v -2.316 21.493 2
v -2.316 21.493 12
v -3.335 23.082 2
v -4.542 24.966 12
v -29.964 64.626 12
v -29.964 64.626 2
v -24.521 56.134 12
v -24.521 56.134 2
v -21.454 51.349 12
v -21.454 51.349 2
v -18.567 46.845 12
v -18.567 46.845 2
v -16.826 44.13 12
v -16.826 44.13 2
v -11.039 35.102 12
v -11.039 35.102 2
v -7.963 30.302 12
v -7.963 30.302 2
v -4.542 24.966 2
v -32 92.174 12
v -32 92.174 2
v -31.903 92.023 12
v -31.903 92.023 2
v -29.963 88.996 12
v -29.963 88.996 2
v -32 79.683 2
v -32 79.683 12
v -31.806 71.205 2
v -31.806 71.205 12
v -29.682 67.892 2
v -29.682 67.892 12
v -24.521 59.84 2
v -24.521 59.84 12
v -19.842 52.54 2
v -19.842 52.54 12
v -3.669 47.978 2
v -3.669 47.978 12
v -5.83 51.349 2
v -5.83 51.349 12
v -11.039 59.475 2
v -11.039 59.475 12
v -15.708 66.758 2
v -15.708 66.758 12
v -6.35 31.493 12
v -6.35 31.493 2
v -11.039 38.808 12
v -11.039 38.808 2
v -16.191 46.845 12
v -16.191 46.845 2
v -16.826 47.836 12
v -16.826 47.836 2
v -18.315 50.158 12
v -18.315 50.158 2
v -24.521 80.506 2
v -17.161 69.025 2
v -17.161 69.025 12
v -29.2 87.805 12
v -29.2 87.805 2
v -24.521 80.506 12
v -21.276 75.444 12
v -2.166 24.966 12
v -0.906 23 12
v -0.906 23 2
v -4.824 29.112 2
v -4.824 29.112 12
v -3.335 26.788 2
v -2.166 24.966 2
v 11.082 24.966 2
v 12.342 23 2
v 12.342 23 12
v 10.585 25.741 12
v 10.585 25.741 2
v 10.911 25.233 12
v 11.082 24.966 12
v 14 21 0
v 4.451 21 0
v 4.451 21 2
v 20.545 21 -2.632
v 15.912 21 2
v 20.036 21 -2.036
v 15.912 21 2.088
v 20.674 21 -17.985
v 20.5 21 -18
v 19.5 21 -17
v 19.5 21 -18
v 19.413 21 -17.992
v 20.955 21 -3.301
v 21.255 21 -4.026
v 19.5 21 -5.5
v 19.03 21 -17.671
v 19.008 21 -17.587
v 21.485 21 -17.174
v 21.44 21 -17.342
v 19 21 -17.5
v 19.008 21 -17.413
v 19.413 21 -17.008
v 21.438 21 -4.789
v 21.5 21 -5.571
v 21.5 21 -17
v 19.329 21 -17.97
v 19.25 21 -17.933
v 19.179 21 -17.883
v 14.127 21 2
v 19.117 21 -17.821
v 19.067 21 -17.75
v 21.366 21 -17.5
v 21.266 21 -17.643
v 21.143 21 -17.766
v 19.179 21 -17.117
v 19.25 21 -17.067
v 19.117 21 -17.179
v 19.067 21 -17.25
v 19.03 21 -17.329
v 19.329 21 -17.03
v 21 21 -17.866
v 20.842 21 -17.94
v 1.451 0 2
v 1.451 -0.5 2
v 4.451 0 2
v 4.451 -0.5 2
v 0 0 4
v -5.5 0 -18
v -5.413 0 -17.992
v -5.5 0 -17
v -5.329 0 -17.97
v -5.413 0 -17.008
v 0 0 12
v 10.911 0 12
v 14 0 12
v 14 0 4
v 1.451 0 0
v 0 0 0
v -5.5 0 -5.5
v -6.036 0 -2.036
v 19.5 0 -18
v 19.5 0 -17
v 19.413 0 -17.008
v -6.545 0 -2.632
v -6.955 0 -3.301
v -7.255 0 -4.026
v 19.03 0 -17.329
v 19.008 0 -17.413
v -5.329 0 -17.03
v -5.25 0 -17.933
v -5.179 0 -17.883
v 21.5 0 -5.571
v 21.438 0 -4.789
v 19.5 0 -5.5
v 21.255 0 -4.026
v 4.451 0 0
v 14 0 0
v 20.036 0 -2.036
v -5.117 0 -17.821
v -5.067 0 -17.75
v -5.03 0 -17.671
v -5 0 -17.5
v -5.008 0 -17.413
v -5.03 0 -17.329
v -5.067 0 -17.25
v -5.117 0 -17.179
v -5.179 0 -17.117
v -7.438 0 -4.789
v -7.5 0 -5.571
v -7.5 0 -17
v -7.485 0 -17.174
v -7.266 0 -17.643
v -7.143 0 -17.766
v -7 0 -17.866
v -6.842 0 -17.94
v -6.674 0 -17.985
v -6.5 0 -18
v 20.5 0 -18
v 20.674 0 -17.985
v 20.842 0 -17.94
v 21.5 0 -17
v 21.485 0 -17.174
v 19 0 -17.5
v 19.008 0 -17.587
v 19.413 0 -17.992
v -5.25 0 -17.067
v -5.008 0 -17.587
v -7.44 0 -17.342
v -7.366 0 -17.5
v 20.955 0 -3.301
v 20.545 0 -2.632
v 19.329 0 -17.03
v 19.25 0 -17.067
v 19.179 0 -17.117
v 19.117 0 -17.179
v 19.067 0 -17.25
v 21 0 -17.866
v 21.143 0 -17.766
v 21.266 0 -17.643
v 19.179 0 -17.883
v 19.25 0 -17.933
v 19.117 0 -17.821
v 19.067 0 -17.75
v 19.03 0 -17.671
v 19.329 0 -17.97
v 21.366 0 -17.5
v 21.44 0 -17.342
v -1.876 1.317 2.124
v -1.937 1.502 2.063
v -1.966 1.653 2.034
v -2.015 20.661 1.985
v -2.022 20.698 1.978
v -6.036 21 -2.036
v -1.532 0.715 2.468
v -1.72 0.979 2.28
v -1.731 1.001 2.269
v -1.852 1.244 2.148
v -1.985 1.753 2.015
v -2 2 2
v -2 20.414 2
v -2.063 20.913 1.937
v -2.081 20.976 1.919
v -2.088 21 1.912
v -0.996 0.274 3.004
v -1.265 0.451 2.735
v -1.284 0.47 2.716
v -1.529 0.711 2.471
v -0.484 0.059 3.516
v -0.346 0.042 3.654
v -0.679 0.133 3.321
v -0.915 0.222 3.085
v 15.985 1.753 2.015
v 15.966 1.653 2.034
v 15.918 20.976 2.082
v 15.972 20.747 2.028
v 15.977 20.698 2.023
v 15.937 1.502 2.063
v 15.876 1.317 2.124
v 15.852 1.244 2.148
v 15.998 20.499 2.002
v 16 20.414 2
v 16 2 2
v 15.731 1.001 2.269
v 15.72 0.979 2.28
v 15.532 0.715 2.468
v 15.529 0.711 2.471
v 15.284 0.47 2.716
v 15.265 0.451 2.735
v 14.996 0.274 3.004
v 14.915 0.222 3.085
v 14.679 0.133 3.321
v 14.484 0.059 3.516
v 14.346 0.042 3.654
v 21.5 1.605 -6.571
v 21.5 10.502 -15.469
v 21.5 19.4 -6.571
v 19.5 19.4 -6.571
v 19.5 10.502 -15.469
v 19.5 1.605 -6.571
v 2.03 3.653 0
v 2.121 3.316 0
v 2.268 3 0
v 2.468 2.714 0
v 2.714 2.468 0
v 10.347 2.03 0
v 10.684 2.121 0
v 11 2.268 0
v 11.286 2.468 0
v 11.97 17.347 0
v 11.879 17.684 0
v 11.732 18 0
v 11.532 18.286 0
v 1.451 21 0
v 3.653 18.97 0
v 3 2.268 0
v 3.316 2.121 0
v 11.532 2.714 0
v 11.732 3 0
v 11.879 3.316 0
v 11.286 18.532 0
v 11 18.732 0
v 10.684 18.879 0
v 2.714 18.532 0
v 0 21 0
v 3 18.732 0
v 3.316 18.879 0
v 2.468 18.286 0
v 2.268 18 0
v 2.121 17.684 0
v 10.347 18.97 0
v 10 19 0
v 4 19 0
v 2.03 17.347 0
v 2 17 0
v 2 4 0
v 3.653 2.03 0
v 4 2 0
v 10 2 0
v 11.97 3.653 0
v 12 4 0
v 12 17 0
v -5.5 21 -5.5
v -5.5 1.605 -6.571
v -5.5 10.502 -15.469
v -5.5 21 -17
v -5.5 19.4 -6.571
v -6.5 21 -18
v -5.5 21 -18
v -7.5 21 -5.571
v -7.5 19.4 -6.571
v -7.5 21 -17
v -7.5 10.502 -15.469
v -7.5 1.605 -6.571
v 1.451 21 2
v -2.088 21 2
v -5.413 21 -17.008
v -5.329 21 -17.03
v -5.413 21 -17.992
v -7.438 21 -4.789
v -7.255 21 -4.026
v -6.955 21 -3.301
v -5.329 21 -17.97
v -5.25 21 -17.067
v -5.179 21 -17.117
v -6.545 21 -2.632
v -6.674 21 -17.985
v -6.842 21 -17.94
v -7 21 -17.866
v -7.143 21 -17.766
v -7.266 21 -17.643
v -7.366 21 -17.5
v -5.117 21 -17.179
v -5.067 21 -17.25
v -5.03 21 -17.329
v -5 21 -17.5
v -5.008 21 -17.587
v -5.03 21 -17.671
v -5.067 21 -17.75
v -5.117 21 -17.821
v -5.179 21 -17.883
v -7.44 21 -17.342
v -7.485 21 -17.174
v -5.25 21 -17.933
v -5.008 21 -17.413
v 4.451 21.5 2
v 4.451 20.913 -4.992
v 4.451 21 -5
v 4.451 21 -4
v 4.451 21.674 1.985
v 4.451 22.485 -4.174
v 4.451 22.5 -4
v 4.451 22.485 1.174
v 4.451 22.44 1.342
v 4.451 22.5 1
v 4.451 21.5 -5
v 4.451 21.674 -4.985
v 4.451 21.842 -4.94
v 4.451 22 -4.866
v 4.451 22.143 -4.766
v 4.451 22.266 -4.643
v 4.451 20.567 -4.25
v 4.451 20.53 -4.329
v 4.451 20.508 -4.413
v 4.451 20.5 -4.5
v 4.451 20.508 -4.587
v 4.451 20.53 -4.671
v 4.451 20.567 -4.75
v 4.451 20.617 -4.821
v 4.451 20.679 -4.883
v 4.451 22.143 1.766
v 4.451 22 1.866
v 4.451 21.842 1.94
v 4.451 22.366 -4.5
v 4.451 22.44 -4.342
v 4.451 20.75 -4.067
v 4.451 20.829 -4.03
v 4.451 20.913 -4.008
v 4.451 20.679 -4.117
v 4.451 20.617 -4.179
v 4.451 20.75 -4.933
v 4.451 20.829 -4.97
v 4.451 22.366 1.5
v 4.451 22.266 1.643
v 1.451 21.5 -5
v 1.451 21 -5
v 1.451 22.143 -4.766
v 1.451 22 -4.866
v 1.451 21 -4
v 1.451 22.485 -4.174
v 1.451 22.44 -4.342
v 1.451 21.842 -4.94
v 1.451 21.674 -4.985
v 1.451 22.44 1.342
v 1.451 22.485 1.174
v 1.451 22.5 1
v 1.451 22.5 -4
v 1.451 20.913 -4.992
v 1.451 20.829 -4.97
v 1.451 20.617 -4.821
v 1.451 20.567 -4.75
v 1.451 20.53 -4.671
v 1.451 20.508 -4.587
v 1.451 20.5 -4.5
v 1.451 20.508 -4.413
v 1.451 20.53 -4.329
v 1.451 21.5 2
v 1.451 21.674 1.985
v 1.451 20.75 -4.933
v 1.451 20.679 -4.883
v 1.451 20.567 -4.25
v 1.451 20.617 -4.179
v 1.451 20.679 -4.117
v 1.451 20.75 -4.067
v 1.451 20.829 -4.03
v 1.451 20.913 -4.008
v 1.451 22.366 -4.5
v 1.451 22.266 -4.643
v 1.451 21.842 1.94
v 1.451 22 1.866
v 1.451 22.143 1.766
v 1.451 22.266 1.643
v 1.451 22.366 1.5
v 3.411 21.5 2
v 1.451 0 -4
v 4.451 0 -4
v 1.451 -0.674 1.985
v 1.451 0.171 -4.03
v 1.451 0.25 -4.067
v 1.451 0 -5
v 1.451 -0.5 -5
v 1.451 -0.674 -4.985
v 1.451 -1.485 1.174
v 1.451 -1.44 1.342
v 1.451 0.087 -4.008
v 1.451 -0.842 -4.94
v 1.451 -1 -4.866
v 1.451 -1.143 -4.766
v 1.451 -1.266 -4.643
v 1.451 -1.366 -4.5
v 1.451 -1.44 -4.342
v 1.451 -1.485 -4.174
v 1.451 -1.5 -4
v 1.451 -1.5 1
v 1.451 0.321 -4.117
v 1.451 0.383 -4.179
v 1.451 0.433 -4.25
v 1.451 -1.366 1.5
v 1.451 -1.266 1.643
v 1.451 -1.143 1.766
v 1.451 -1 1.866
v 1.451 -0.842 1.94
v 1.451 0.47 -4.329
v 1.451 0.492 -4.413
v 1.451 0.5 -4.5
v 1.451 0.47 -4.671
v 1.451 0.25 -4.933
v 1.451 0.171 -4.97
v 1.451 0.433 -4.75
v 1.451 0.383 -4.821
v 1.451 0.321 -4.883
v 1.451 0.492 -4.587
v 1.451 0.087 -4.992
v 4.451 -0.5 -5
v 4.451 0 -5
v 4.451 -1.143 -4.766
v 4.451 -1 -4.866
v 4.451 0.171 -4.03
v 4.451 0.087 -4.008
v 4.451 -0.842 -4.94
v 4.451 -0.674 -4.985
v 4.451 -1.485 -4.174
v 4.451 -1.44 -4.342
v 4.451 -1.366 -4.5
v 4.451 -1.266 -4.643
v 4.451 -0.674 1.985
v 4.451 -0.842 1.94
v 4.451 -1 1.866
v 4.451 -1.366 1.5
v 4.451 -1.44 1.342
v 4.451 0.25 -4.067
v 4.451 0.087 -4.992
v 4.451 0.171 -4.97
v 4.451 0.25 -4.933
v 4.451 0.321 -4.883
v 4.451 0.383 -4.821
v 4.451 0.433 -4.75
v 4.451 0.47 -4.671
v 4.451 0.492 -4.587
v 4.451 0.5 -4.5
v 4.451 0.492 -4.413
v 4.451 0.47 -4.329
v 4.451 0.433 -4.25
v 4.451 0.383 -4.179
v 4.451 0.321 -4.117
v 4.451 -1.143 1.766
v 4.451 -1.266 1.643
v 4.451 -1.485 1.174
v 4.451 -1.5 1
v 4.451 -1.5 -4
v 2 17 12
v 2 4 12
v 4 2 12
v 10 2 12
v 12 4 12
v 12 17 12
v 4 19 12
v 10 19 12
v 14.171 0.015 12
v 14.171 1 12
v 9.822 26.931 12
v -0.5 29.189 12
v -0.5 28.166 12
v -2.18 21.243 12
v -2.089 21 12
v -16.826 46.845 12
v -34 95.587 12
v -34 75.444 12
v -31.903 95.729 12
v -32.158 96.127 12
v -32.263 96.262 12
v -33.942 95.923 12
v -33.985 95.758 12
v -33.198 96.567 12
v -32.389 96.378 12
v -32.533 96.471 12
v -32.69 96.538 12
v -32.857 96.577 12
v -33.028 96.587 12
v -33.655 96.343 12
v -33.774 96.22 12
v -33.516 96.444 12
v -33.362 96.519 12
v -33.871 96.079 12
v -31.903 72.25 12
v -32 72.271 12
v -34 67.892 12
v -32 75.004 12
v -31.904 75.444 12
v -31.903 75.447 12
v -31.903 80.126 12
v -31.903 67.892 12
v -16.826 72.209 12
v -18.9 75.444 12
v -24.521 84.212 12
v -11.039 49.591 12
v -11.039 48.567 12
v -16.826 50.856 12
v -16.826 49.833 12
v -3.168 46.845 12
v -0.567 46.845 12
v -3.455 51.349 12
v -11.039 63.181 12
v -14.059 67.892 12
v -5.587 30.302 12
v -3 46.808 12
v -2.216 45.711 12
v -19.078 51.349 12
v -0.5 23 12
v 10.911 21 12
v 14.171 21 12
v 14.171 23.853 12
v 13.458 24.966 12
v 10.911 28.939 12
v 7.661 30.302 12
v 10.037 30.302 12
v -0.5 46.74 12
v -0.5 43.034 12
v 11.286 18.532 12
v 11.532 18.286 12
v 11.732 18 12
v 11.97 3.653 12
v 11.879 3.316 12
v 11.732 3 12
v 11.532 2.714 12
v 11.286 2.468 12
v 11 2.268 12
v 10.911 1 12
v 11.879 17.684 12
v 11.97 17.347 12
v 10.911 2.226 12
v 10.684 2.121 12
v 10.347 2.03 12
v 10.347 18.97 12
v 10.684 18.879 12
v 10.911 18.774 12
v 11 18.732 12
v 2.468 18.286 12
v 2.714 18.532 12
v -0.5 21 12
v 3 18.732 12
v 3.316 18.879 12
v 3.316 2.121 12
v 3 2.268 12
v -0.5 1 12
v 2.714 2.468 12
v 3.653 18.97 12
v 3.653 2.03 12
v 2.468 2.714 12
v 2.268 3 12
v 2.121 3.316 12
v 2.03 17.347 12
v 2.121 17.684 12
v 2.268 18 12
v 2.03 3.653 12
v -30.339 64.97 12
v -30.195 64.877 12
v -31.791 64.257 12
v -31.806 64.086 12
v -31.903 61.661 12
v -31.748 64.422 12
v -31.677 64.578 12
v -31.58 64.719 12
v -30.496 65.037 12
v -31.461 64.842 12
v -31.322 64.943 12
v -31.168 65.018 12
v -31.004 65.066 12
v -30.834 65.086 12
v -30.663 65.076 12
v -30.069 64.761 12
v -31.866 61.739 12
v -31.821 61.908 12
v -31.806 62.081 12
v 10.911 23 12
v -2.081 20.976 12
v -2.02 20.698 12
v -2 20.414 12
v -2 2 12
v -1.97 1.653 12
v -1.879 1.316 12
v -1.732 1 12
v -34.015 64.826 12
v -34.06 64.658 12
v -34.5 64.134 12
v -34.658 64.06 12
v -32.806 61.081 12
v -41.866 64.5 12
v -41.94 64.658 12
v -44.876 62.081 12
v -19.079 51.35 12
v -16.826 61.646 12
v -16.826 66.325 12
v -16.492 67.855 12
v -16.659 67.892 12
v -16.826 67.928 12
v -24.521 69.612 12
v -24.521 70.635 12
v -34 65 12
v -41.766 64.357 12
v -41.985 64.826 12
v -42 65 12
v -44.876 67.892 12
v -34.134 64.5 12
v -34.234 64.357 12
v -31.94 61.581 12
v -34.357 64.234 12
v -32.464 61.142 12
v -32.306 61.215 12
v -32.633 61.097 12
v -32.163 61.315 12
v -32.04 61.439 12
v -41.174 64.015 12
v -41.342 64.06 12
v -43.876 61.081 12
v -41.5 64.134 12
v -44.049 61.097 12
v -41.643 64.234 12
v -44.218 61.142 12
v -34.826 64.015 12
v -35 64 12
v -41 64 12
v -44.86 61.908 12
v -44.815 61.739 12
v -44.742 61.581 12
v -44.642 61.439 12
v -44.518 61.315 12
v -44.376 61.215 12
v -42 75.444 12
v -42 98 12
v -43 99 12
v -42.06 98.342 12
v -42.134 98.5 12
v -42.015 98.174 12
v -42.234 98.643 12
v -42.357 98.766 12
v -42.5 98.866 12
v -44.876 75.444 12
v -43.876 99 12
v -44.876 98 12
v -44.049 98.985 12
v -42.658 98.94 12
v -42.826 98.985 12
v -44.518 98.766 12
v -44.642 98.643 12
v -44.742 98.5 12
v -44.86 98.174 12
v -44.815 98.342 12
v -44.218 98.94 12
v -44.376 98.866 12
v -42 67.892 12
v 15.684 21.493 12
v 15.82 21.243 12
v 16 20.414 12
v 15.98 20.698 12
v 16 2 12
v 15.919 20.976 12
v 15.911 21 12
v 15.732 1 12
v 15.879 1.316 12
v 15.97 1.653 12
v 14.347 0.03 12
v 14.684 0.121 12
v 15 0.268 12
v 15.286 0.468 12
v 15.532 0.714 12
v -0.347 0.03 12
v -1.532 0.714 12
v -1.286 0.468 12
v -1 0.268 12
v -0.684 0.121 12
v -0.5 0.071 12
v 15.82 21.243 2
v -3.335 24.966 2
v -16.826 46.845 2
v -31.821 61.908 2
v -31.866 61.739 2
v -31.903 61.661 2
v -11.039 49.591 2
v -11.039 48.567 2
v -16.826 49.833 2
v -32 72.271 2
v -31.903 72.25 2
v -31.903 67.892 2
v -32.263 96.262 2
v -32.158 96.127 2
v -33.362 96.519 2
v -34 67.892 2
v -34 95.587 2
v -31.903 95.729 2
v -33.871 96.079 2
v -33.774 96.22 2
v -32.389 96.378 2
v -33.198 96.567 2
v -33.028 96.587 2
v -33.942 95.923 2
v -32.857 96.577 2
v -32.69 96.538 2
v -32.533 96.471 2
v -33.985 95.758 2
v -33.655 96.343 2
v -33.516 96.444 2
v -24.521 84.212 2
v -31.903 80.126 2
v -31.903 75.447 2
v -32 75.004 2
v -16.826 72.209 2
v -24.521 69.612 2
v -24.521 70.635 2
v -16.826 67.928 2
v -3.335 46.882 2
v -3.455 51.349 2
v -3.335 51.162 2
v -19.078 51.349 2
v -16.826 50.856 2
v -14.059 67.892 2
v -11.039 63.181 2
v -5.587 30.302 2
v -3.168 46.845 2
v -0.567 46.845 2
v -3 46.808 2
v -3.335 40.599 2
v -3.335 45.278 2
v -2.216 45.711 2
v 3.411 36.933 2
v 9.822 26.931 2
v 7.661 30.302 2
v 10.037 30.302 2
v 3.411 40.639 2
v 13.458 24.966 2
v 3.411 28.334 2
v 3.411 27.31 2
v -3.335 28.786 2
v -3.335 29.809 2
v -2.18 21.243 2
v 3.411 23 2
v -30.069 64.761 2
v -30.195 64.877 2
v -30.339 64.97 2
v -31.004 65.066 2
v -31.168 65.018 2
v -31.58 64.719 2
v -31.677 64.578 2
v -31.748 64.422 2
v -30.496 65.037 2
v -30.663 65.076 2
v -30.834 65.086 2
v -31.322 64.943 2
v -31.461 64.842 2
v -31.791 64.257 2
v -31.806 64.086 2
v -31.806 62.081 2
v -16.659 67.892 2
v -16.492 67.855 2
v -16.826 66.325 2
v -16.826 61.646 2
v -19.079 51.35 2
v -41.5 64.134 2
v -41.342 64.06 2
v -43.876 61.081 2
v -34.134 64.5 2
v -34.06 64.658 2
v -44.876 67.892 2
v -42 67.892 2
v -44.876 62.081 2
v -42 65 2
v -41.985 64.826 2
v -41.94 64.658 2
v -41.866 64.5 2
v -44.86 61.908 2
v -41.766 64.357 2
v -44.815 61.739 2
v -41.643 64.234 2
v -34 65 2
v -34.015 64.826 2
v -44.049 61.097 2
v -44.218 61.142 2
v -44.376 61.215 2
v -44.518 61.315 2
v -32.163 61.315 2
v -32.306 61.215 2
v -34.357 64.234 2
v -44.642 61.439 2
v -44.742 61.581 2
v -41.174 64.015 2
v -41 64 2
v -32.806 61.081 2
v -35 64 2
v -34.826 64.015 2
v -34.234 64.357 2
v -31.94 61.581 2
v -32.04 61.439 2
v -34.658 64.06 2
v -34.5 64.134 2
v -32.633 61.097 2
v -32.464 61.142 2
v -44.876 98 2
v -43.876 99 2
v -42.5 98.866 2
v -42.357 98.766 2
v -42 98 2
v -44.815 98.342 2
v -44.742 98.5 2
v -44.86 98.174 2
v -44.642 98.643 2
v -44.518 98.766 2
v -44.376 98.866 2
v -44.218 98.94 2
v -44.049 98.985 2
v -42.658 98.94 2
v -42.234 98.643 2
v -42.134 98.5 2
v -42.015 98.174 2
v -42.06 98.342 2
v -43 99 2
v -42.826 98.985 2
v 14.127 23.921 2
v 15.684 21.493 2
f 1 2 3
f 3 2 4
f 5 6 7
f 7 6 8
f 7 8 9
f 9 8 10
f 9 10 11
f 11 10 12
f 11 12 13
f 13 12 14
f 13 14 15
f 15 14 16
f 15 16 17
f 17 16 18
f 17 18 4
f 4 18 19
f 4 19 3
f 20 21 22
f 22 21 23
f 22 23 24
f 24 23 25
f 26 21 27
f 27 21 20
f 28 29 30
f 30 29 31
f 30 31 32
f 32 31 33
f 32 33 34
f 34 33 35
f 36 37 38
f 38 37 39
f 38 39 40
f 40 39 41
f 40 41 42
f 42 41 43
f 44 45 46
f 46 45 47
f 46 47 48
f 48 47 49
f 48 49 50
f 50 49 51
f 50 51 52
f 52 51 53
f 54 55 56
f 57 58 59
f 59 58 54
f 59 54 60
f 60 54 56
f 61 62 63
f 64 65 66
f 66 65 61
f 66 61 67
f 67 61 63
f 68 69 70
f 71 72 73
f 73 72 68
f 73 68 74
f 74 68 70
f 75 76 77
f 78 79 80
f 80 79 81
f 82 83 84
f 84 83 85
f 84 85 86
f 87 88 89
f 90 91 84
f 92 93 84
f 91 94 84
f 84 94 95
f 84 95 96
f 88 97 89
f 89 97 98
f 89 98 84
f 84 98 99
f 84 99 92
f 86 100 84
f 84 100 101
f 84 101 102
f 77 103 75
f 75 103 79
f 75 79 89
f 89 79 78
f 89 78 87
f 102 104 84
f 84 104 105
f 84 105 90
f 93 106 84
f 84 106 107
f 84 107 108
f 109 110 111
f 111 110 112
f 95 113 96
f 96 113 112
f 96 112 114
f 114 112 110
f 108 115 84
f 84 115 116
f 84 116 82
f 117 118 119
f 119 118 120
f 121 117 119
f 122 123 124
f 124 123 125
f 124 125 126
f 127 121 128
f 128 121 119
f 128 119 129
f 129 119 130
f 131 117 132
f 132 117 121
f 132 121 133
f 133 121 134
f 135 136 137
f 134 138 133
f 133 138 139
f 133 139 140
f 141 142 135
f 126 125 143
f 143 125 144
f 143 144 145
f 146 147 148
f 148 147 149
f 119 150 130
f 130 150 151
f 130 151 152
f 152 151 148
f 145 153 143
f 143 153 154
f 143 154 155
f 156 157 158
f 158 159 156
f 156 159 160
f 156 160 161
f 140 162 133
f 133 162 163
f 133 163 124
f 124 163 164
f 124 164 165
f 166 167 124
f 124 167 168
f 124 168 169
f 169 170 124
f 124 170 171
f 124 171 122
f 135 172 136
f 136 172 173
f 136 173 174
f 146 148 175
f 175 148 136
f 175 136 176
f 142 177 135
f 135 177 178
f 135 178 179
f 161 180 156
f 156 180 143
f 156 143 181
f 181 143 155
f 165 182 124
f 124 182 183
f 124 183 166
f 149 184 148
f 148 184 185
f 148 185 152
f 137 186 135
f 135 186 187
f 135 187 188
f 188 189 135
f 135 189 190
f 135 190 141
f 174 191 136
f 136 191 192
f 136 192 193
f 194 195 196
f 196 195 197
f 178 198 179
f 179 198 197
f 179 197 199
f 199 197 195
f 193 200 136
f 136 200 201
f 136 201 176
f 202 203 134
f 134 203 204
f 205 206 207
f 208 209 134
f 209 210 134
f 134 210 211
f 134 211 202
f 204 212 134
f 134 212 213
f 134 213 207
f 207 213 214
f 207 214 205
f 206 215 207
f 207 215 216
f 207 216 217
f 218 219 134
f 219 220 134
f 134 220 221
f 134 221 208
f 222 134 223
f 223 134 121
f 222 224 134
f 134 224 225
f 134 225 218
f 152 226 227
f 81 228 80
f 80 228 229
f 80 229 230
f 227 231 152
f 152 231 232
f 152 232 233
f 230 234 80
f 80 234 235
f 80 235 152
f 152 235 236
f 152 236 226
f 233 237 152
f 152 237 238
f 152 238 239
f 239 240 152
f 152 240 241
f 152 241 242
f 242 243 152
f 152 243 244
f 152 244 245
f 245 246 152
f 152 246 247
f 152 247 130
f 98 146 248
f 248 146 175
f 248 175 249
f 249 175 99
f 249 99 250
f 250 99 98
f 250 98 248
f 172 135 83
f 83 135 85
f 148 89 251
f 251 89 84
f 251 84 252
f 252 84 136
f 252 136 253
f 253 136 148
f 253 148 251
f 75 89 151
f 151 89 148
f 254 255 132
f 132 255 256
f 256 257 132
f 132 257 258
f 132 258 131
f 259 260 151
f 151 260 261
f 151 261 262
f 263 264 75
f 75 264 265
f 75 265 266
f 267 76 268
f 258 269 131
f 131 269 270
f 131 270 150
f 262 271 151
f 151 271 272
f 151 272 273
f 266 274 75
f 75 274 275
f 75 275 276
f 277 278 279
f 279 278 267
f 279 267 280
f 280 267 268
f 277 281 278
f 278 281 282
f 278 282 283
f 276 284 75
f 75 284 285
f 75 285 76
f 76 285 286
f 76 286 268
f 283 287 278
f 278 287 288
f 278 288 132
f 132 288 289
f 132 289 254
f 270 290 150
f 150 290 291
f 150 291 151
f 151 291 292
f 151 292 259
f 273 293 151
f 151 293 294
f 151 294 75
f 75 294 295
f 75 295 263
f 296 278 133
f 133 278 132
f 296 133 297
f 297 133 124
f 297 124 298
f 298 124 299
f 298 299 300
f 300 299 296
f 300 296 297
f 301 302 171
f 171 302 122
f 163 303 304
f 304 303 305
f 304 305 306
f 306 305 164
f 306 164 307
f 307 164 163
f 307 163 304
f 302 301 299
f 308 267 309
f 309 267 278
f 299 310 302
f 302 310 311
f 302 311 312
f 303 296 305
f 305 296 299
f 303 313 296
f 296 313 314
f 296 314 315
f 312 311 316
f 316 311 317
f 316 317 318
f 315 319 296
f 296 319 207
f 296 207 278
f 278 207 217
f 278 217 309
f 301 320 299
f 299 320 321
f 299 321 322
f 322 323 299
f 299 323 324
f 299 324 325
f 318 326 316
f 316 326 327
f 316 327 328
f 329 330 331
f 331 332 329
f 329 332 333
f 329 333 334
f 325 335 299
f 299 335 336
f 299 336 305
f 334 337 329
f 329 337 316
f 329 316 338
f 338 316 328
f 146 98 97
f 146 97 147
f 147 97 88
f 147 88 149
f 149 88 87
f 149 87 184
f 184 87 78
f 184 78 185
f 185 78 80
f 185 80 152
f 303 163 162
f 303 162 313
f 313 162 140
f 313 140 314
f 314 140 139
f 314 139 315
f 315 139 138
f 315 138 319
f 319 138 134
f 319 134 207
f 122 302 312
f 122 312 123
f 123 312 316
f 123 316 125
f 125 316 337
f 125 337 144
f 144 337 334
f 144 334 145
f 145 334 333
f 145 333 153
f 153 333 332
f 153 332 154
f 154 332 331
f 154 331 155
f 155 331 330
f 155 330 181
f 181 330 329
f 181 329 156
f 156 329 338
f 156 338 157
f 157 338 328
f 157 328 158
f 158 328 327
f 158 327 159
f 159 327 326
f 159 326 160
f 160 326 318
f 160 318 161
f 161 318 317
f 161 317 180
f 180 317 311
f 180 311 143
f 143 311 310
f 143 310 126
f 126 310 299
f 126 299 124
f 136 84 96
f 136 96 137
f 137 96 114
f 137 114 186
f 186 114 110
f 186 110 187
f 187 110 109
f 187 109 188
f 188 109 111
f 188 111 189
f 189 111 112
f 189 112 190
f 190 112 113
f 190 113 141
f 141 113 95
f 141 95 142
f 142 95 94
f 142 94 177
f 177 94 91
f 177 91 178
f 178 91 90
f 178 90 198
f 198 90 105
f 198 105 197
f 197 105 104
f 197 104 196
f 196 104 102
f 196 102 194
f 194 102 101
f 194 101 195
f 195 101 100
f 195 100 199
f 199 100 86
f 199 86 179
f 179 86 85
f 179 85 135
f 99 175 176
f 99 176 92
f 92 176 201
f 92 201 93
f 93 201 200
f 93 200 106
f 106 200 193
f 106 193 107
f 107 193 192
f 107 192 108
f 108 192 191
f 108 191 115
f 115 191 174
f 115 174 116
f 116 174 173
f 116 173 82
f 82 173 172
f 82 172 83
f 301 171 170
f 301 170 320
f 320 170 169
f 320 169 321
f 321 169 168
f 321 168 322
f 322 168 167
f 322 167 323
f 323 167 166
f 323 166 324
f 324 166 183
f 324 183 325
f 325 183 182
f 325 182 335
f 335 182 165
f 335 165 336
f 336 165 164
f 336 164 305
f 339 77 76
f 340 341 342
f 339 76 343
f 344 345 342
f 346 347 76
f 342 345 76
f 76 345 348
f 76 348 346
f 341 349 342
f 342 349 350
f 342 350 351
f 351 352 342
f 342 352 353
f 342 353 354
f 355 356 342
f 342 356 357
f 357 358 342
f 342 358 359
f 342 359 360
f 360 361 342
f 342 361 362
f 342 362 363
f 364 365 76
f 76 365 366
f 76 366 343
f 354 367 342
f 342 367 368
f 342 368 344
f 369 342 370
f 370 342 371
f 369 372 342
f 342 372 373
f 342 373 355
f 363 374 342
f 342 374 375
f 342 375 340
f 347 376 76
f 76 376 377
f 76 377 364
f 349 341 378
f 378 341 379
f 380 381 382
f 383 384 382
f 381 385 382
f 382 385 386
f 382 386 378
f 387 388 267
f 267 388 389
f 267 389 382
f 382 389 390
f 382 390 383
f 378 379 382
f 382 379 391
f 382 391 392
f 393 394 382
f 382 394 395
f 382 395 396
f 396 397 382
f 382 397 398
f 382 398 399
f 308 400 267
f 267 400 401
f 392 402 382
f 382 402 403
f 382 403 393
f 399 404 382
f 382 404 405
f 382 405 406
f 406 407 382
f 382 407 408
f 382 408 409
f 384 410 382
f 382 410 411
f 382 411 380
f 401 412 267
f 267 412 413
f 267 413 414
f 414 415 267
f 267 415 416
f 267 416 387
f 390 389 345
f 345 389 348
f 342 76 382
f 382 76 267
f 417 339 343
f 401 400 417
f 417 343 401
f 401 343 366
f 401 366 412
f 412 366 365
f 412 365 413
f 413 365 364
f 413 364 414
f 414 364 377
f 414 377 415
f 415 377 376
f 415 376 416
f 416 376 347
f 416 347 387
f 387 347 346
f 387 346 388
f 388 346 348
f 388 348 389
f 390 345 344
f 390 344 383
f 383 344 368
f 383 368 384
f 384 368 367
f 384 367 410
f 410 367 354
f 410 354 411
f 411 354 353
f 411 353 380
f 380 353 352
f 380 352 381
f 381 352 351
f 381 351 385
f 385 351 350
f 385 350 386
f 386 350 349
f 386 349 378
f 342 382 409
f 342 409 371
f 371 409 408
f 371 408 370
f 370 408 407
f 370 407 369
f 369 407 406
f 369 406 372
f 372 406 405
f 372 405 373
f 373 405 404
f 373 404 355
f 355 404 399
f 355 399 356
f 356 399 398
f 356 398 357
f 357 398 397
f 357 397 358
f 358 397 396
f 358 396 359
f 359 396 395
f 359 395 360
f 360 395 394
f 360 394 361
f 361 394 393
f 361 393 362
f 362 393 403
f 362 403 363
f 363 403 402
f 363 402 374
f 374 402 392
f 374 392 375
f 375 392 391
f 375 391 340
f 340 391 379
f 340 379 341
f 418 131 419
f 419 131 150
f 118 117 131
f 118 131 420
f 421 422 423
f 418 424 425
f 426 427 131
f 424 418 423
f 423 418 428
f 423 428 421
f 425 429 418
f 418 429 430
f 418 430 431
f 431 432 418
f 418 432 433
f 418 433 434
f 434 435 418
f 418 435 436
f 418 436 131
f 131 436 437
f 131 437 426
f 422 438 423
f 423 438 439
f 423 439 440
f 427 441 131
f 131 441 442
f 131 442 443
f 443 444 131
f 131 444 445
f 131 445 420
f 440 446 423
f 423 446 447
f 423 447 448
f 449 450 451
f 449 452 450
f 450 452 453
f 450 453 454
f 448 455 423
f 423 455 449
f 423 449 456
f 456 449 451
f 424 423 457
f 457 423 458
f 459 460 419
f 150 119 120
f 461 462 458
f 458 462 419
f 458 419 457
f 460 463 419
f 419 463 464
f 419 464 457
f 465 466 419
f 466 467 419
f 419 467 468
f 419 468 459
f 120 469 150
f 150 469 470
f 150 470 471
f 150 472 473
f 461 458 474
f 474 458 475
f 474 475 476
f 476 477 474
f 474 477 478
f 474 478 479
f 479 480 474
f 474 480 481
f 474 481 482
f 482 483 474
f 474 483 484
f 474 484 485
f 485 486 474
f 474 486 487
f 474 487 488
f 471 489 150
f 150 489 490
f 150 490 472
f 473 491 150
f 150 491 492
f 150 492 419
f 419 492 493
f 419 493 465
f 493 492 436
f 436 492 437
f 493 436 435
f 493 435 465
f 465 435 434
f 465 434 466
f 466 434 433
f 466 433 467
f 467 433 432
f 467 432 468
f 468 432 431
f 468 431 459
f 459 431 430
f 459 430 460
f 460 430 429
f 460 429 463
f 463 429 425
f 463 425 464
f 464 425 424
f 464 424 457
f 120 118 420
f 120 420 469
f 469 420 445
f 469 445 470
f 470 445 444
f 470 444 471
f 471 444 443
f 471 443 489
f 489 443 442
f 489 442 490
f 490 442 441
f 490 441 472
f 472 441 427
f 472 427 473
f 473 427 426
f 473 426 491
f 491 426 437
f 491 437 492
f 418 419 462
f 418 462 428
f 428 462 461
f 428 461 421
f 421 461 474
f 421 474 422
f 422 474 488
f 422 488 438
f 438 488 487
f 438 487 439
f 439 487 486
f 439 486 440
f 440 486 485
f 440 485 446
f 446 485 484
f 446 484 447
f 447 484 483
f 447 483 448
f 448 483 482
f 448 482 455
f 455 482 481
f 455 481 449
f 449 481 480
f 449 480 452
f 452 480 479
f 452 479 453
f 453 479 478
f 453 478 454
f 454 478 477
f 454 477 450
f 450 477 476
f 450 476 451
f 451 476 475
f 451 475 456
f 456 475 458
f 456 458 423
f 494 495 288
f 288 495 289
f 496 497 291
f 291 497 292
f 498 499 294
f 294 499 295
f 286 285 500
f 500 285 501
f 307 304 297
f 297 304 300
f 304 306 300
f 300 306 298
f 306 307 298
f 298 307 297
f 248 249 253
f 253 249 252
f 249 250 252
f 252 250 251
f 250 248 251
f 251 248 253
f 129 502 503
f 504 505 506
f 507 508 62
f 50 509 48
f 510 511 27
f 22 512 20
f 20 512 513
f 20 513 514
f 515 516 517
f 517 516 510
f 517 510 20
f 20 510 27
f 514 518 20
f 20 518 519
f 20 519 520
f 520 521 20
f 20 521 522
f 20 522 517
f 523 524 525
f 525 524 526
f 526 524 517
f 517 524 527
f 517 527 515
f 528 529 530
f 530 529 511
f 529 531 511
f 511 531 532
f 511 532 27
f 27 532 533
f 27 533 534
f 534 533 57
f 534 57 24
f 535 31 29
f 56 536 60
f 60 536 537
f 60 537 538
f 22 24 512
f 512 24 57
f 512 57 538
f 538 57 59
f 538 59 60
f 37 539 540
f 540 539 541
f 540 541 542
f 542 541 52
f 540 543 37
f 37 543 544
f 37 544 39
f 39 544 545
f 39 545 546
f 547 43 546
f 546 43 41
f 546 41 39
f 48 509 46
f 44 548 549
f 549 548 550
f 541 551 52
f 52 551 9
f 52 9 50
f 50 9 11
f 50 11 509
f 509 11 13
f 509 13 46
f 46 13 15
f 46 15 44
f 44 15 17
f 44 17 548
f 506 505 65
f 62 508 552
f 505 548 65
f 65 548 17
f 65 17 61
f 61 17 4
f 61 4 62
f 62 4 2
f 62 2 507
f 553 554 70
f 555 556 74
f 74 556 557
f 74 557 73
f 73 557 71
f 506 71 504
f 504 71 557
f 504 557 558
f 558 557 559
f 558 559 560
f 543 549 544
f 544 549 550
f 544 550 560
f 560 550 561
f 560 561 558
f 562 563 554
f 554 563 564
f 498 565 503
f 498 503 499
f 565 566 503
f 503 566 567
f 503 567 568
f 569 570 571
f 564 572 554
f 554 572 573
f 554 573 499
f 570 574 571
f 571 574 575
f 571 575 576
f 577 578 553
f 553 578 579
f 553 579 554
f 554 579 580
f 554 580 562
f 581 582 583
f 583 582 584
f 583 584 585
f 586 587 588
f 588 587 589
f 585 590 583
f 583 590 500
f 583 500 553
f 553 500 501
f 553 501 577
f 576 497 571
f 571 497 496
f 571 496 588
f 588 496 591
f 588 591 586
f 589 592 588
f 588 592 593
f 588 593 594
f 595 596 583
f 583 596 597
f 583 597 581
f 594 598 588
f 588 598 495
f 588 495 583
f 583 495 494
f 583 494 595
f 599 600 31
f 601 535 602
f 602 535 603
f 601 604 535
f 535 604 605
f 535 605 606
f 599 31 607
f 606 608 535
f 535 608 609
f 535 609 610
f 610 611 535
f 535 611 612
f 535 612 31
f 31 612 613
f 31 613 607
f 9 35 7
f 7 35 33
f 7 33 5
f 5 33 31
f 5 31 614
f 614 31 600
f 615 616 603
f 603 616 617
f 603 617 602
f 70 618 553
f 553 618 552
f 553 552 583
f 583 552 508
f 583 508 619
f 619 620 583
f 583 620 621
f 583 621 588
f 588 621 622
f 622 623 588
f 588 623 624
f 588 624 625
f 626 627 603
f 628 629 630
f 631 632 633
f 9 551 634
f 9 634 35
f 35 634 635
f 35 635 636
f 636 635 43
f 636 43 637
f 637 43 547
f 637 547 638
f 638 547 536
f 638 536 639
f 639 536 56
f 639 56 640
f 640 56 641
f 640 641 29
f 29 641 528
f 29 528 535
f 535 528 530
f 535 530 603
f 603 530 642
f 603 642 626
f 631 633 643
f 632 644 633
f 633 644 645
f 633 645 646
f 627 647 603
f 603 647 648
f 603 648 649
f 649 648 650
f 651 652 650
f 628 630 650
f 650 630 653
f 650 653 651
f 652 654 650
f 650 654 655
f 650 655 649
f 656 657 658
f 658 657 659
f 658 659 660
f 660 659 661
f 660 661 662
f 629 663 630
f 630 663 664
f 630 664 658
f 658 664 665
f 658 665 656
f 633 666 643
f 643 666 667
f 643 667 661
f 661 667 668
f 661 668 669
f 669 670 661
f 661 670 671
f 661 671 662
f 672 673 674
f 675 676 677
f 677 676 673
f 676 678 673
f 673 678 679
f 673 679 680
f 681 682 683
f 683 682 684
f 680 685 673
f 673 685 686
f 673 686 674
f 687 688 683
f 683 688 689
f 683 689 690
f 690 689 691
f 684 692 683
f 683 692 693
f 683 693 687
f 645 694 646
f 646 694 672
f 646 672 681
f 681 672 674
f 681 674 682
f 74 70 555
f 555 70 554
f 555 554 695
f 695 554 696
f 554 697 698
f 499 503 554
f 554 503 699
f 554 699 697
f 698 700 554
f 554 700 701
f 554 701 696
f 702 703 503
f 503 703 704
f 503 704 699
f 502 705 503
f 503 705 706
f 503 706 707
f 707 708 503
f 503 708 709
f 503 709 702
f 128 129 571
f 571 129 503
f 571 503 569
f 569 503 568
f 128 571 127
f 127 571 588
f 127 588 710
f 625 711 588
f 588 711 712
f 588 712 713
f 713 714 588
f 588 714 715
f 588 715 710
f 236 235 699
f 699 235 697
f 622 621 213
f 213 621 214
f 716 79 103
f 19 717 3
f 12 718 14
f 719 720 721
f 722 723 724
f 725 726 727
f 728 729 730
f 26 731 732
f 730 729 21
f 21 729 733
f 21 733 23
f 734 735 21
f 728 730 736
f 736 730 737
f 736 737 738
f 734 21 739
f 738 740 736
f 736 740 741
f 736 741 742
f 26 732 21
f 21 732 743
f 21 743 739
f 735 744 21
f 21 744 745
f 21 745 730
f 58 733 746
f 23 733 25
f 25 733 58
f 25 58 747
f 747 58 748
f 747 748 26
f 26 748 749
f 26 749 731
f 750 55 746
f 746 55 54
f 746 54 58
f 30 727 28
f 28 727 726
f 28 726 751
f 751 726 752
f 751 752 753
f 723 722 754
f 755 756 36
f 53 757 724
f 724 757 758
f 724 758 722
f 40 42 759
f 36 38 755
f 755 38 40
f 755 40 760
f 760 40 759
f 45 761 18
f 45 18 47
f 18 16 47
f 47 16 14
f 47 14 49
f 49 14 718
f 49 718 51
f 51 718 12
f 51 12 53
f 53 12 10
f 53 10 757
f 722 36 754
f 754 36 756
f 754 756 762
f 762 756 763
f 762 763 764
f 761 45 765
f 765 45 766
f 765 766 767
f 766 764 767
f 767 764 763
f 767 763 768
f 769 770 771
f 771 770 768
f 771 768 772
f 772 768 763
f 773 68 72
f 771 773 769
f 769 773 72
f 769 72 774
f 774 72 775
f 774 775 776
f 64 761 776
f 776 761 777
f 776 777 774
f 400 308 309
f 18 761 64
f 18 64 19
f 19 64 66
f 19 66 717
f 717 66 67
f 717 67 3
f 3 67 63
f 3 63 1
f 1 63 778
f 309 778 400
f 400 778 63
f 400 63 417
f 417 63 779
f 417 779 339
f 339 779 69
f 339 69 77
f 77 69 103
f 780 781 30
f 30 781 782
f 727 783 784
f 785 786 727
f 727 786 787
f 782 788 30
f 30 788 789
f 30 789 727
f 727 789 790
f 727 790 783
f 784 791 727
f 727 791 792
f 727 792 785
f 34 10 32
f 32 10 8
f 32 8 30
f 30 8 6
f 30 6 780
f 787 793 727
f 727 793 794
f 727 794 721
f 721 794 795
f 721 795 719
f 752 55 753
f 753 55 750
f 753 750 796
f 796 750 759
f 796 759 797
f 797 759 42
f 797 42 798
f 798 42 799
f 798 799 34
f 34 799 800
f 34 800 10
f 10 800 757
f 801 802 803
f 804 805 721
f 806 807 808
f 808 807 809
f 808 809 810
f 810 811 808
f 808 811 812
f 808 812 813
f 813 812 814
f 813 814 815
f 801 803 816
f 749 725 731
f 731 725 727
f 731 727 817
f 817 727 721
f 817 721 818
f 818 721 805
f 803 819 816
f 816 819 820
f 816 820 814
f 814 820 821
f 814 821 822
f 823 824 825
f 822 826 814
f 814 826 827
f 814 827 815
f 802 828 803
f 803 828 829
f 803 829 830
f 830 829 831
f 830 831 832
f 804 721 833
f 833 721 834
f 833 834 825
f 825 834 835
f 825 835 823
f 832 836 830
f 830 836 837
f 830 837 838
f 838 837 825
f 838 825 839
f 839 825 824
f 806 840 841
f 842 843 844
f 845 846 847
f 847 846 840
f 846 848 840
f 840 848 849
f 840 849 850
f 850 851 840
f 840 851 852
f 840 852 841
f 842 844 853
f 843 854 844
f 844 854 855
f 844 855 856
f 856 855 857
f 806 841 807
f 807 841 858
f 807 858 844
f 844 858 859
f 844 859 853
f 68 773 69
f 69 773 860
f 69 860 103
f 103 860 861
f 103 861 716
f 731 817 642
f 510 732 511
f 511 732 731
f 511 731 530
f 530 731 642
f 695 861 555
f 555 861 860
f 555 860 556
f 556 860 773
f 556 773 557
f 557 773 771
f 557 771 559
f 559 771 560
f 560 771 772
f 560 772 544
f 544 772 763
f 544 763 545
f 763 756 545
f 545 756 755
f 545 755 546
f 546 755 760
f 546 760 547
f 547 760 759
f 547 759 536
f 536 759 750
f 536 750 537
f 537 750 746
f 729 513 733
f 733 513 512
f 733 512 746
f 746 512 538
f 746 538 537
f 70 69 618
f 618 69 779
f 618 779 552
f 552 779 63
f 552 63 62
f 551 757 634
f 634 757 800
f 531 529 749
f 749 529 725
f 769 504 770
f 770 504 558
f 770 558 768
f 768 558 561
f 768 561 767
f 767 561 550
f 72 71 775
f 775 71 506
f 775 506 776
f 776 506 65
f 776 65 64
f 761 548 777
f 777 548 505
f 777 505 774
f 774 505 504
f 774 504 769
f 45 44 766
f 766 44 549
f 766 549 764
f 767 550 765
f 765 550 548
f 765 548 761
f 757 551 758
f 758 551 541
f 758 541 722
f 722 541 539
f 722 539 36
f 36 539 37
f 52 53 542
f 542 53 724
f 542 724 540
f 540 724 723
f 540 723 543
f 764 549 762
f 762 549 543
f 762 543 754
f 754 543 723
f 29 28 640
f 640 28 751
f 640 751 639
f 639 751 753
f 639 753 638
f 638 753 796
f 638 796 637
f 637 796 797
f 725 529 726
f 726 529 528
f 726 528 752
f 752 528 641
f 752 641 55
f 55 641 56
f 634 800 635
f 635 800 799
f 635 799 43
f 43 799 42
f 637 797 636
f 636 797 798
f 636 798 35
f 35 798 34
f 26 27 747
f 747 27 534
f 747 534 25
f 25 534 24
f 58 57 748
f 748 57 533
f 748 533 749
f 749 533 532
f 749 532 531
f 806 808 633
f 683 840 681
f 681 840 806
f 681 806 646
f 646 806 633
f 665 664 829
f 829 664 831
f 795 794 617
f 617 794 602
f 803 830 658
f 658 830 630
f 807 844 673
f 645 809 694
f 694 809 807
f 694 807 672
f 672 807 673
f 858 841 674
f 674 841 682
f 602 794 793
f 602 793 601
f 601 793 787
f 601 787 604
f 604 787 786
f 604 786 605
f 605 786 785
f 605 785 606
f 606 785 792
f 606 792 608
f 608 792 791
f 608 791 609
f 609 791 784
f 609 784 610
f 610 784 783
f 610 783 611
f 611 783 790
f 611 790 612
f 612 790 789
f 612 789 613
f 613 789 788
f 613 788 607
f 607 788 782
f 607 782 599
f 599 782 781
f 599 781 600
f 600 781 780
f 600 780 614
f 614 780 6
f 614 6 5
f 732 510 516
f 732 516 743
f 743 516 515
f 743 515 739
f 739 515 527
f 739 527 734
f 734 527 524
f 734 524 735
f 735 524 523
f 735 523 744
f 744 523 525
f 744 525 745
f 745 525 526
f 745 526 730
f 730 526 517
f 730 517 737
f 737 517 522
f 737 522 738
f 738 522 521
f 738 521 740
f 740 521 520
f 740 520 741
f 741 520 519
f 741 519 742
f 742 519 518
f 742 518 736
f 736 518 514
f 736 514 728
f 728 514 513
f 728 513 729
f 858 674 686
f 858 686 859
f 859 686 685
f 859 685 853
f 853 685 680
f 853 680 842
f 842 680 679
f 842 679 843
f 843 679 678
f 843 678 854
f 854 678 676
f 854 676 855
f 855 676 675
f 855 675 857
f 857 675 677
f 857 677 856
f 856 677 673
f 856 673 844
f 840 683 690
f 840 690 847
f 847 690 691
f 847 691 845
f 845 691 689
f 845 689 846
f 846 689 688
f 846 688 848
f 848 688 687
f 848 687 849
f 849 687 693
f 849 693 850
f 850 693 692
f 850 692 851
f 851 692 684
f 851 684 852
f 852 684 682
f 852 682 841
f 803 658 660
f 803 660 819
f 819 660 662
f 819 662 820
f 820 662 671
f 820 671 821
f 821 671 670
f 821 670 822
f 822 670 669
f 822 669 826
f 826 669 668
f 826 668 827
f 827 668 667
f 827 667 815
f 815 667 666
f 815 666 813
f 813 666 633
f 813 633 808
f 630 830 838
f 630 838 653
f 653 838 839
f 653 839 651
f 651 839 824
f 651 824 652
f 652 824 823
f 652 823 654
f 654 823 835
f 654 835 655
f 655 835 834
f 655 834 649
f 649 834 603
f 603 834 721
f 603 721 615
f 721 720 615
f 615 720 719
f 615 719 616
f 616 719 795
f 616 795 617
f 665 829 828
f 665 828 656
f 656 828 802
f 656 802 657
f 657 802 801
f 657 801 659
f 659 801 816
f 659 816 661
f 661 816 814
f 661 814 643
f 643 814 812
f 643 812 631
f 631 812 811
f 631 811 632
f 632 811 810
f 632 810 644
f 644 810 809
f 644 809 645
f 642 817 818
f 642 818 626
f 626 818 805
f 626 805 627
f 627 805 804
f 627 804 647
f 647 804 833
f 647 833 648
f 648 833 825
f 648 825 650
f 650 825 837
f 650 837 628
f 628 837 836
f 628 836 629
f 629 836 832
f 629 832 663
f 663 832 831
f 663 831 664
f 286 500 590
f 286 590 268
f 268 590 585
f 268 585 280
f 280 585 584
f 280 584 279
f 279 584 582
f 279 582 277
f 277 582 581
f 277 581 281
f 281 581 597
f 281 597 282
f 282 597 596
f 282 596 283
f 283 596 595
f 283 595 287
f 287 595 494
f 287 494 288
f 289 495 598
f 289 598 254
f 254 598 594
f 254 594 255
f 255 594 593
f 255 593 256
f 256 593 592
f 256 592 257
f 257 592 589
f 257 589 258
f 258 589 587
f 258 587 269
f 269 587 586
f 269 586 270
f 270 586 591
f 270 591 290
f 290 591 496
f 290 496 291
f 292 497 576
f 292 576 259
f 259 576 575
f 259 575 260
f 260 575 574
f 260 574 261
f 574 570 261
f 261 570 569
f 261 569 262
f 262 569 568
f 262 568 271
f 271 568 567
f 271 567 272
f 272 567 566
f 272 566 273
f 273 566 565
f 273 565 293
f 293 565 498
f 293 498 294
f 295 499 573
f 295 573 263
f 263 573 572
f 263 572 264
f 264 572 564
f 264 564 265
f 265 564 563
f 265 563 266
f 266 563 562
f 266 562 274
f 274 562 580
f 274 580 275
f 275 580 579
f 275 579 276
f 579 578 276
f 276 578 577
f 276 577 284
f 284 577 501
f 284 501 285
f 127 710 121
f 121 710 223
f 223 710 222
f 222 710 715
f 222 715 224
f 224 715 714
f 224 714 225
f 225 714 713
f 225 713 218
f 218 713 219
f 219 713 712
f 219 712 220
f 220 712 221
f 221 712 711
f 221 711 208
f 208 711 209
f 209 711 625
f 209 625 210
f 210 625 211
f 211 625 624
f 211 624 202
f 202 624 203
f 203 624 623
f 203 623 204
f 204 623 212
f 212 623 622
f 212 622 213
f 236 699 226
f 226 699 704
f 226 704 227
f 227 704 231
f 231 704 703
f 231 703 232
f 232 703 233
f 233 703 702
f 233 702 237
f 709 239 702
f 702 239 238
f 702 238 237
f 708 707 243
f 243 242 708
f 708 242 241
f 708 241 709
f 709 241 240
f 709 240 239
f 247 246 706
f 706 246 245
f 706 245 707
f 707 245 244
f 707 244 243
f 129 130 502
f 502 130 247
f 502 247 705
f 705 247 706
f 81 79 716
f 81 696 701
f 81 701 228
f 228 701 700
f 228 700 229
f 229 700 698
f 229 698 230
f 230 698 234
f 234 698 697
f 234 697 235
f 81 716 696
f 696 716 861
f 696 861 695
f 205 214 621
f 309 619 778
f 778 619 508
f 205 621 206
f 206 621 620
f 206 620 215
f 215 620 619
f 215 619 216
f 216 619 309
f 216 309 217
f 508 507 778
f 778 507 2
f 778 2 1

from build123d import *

# Parameters (mm, degrees)
BOSS_EXTRUDE2_DEPTH  = 21
FILLET1_R            = 5
SKETCH4_R            = 0.5
BOSS_EXTRUDE3_DEPTH  = 21
SKETCH5_R            = 0.5
BOSS_EXTRUDE4_DEPTH  = 21
FILLET2_R            = 1
BOSS_EXTRUDE5_DEPTH  = 1.5
FILLET3_R            = 1
FILLET4_R            = 1
SKETCH7_R            = 0.5
BOSS_EXTRUDE6_DEPTH  = 3
SKETCH8_W            = 3
SKETCH8_H            = 7
BOSS_EXTRUDE7_DEPTH  = 1.5
FILLET5_R            = 1
SKETCH9_R            = 0.5
BOSS_EXTRUDE8_DEPTH  = 3
SKETCH10_W           = 10
SKETCH10_H           = 17
CUT_EXTRUDE1_DEPTH   = 36.951356024
CUT_EXTRUDE2_DEPTH   = 41.880924647
SKETCH12_W           = 18
SKETCH12_H           = 21
SKETCH12_W_2         = 10
SKETCH12_H_2         = 17
BOSS_EXTRUDE9_DEPTH  = 10
BOSS_EXTRUDE10_DEPTH = 10
BOSS_EXTRUDE14_DEPTH = 10
BOSS_EXTRUDE15_DEPTH = 10
LPATTERN1_START      = 2
LPATTERN1_DEPTH      = 10
SKETCH17_W           = 2.875504222
SKETCH17_H           = 35
BOSS_EXTRUDE16_DEPTH = 10
BOSS_EXTRUDE17_DEPTH = 10
FILLET6_R            = 1
FILLET7_R            = 1
FILLET8_R            = 1
FILLET9_R            = 2


# Read off the part's stored shape, not the designer's step: LPattern1
with BuildPart() as part:
    # Sketch3 → Boss-Extrude2 (new body)
    with BuildSketch(Plane(origin=(0, 0, 0), x_dir=(1, 0, 0), z_dir=(0, 1, 0))):
        Polygon((0, 0), (-5.5, 5.5), (-5.5, 18), (-7.5, 18), (-7.5, 3.5), (-2, -2), (16, -2), (21.5, 3.5), (21.5, 18), (19.5, 18), (19.5, 5.5), (14, 0), align=None)
    extrude(amount=BOSS_EXTRUDE2_DEPTH)

    # Fillet1
    fillet1_edges = [part.edges().sort_by_distance(p)[0] for p in [
        (-7.5, 10.5, -3.5),
        (21.5, 10.5, -3.5),
    ]]
    fillet(fillet1_edges, radius=FILLET1_R)

    # Sketch4 → Boss-Extrude3 (add)
    with BuildSketch(Plane(origin=(0, 21, 0), x_dir=(1, 0, 0), z_dir=(0, 1, 0))):
        with Locations((-5.5, 17.5)):
            Circle(SKETCH4_R)
    extrude(amount=-BOSS_EXTRUDE3_DEPTH)

    # Sketch5 → Boss-Extrude4 (add)
    with BuildSketch(Plane(origin=(0, 21, 0), x_dir=(1, 0, 0), z_dir=(0, 1, 0))):
        with Locations((19.5, 17.5)):
            Circle(SKETCH5_R)
    extrude(amount=-BOSS_EXTRUDE4_DEPTH)

    # Fillet2
    fillet2_edges = [part.edges().sort_by_distance(p)[0] for p in [
        (-7.5, 10.5, -18),
        (21.5, 10.5, -18),
    ]]
    fillet(fillet2_edges, radius=FILLET2_R)

    # Sketch6 → Boss-Extrude5 (add)
    with BuildSketch(Plane(origin=(0, 21, 0), x_dir=(1, 0, 0), z_dir=(0, 1, 0))):
        Polygon((1.451426333, 5), (1.451426333, 0), (1.451426333, -2), (4.451426333, -2), (4.451426333, 0), (4.451426333, 5), align=None)
    extrude(amount=BOSS_EXTRUDE5_DEPTH)

    # Fillet3
    fillet3_edges = [part.edges().sort_by_distance(p)[0] for p in [
        (2.951426333, 22.5, 2),
    ]]
    fillet(fillet3_edges, radius=FILLET3_R)

    # Fillet4
    fillet4_edges = [part.edges().sort_by_distance(p)[0] for p in [
        (2.951426333, 22.5, -5),
    ]]
    fillet(fillet4_edges, radius=FILLET4_R)

    # Sketch7 → Boss-Extrude6 (add)
    with BuildSketch(Plane.ZY.offset(-1.451426333)):
        with Locations((-4.5, 21)):
            Circle(SKETCH7_R)
    extrude(amount=-BOSS_EXTRUDE6_DEPTH)

    # Sketch8 → Boss-Extrude7 (add)
    with BuildSketch(Plane.XZ):
        with Locations((2.951426333, -1.5)):
            Rectangle(SKETCH8_W, SKETCH8_H)
    extrude(amount=BOSS_EXTRUDE7_DEPTH)

    # Fillet5
    fillet5_edges = [part.edges().sort_by_distance(p)[0] for p in [
        (2.951426333, -1.5, -5),
        (2.951426333, -1.5, 2),
    ]]
    fillet(fillet5_edges, radius=FILLET5_R)

    # Sketch9 → Boss-Extrude8 (add)
    with BuildSketch(Plane(origin=(4.451426333, 0, 0), x_dir=(0, 0, -1), z_dir=(1, 0, 0))):
        with Locations((4.5, 0)):
            Circle(SKETCH9_R)
    extrude(amount=-BOSS_EXTRUDE8_DEPTH)

    # Sketch10 → Cut-Extrude1 (cut, through all)
    with BuildSketch(Plane(origin=(0, 0, 0), x_dir=(-1, 0, 0), z_dir=(0, 0, -1))):
        with Locations((-7, 10.5)):
            Rectangle(SKETCH10_W, SKETCH10_H)
    extrude(amount=-CUT_EXTRUDE1_DEPTH, mode=Mode.SUBTRACT)

    # Sketch11 → Cut-Extrude2 (cut, through all)
    with BuildSketch(Plane.ZY.offset(7.5)):
        Polygon((-6.571067812, 19.4), (-6.571067812, 1.604815424), (-15.4686601, 10.502407712), align=None)
    extrude(amount=-CUT_EXTRUDE2_DEPTH, mode=Mode.SUBTRACT)

    # Sketch12 → Boss-Extrude9 (add)
    with BuildSketch(Plane.XY.offset(2)):
        with Locations((7, 10.5)):
            Rectangle(SKETCH12_W, SKETCH12_H)
        with Locations((7, 10.5)):
            Rectangle(SKETCH12_W_2, SKETCH12_H_2, mode=Mode.SUBTRACT)
    extrude(amount=BOSS_EXTRUDE9_DEPTH)

    # Sketch13 → Boss-Extrude10 (add)
    with BuildSketch(Plane.XY.offset(12)):
        Polygon((16, 21), (-34, 99), (-34, 70.921750355), (-2, 21), align=None)
        Polygon((-0.906392677, 23), (-32, 71.507728201), (-32, 92.174004857), (12.342310806, 23), align=None, mode=Mode.SUBTRACT)
    extrude(amount=-BOSS_EXTRUDE10_DEPTH)

    # Sketch14 → Boss-Extrude14 (add)
    with BuildSketch(Plane.XY.offset(12)):
        Polygon((10.585384641, 25.740804817), (-4.823944827, 29.111595638), (-6.748576082, 29.532608725), (-6.534879203, 30.509508743), (-4.610247948, 30.088495656), (10.79908152, 26.717704835), align=None)
    extrude(amount=-BOSS_EXTRUDE14_DEPTH)

    # Sketch16 → Boss-Extrude15 (add)
    with BuildSketch(Plane.XY.offset(12)):
        Polygon((-5.587116842, 30.302185726), (-2.216332829, 45.71148407), (-2.025604345, 46.583385709), (-1.775197733, 47.728101652), (-2.75209775, 47.941798531), (-3.002504363, 46.797082588), (-3.193232846, 45.925180949), (-6.564016859, 30.515882605), align=None)
    extrude(amount=-BOSS_EXTRUDE15_DEPTH)

    # LPattern1 outline → LPattern1 (add)
    with BuildSketch(Plane.XY.offset(LPATTERN1_START)):
        Polygon((-2.979535968, 46.902080966), (-3.669471366, 47.978380187), (-19.078219518, 51.349043846), (-18.315047503, 50.158453758), (-3.000050935, 46.808298259), align=None)
        Polygon((-19.078649352, 51.349714409), (-15.707985697, 66.758462544), (-17.161124234, 69.025358662), (-32, 72.271362735), (-32, 71.507728201), (-31.80615018, 71.205311878), (-16.491703803, 67.855276733), (-19.841845682, 52.54034243), align=None)
        Polygon((-32, 75.003788744), (-29.199638565, 87.805441018), (-29.962841704, 88.996037915), (-32, 79.683314274), align=None)
    extrude(amount=LPATTERN1_DEPTH)



with BuildPart() as body_2:
    # Sketch17 → Boss-Extrude16 (new body)
    with BuildSketch(Plane.XY.offset(12)):
        with Locations((-43.437752111, 81.5)):
            Rectangle(SKETCH17_W, SKETCH17_H)
    extrude(amount=-BOSS_EXTRUDE16_DEPTH)


with BuildPart() as part_1:
    add(part.part)

    add(body_2.part)  # Boss-Extrude17 merges body 2
    # Sketch18 → Boss-Extrude17 (add)
    with BuildSketch(Plane.XY.offset(12)):
        Polygon((-34, 64), (-34, 71.035157721), (-31.80615018, 71.205311878), (-31.80615018, 61.08148926), (-34, 61.08148926), (-44.875504222, 61.08148926), (-44.875504222, 64), (-42, 64), align=None)
    extrude(amount=-BOSS_EXTRUDE17_DEPTH)

    # Fillet6
    fillet6_edges = [part_1.edges().sort_by_distance(p)[0] for p in [
        (-31.80615018, 67.499224635, 7),
    ]]
    fillet(fillet6_edges, radius=FILLET6_R)

    # Fillet7
    fillet7_edges = [part_1.edges().sort_by_distance(p)[0] for p in [
        (-34, 99, 7),
        (-44.875504222, 61.08148926, 7),
        (-31.80615018, 61.08148926, 7),
        (-42, 99, 7),
        (-44.875504222, 99, 7),
    ]]
    fillet(fillet7_edges, radius=FILLET7_R)

    # Fillet8
    fillet8_edges = [part_1.edges().sort_by_distance(p)[0] for p in [
        (-34, 64, 7),
        (-42, 64, 7),
    ]]
    fillet(fillet8_edges, radius=FILLET8_R)

    # Fillet9
    fillet9_edges = [part_1.edges().sort_by_distance(p)[0] for p in [
        (2, 19, 6),
        (2, 2, 6),
        (12, 2, 6),
        (12, 19, 6),
        (16, 0, 7),
        (16, 21, 7),
        (-2, 21, 7),
        (-2, 0, 7),
    ]]
    fillet(fillet9_edges, radius=FILLET9_R)


solid = part_1.part
